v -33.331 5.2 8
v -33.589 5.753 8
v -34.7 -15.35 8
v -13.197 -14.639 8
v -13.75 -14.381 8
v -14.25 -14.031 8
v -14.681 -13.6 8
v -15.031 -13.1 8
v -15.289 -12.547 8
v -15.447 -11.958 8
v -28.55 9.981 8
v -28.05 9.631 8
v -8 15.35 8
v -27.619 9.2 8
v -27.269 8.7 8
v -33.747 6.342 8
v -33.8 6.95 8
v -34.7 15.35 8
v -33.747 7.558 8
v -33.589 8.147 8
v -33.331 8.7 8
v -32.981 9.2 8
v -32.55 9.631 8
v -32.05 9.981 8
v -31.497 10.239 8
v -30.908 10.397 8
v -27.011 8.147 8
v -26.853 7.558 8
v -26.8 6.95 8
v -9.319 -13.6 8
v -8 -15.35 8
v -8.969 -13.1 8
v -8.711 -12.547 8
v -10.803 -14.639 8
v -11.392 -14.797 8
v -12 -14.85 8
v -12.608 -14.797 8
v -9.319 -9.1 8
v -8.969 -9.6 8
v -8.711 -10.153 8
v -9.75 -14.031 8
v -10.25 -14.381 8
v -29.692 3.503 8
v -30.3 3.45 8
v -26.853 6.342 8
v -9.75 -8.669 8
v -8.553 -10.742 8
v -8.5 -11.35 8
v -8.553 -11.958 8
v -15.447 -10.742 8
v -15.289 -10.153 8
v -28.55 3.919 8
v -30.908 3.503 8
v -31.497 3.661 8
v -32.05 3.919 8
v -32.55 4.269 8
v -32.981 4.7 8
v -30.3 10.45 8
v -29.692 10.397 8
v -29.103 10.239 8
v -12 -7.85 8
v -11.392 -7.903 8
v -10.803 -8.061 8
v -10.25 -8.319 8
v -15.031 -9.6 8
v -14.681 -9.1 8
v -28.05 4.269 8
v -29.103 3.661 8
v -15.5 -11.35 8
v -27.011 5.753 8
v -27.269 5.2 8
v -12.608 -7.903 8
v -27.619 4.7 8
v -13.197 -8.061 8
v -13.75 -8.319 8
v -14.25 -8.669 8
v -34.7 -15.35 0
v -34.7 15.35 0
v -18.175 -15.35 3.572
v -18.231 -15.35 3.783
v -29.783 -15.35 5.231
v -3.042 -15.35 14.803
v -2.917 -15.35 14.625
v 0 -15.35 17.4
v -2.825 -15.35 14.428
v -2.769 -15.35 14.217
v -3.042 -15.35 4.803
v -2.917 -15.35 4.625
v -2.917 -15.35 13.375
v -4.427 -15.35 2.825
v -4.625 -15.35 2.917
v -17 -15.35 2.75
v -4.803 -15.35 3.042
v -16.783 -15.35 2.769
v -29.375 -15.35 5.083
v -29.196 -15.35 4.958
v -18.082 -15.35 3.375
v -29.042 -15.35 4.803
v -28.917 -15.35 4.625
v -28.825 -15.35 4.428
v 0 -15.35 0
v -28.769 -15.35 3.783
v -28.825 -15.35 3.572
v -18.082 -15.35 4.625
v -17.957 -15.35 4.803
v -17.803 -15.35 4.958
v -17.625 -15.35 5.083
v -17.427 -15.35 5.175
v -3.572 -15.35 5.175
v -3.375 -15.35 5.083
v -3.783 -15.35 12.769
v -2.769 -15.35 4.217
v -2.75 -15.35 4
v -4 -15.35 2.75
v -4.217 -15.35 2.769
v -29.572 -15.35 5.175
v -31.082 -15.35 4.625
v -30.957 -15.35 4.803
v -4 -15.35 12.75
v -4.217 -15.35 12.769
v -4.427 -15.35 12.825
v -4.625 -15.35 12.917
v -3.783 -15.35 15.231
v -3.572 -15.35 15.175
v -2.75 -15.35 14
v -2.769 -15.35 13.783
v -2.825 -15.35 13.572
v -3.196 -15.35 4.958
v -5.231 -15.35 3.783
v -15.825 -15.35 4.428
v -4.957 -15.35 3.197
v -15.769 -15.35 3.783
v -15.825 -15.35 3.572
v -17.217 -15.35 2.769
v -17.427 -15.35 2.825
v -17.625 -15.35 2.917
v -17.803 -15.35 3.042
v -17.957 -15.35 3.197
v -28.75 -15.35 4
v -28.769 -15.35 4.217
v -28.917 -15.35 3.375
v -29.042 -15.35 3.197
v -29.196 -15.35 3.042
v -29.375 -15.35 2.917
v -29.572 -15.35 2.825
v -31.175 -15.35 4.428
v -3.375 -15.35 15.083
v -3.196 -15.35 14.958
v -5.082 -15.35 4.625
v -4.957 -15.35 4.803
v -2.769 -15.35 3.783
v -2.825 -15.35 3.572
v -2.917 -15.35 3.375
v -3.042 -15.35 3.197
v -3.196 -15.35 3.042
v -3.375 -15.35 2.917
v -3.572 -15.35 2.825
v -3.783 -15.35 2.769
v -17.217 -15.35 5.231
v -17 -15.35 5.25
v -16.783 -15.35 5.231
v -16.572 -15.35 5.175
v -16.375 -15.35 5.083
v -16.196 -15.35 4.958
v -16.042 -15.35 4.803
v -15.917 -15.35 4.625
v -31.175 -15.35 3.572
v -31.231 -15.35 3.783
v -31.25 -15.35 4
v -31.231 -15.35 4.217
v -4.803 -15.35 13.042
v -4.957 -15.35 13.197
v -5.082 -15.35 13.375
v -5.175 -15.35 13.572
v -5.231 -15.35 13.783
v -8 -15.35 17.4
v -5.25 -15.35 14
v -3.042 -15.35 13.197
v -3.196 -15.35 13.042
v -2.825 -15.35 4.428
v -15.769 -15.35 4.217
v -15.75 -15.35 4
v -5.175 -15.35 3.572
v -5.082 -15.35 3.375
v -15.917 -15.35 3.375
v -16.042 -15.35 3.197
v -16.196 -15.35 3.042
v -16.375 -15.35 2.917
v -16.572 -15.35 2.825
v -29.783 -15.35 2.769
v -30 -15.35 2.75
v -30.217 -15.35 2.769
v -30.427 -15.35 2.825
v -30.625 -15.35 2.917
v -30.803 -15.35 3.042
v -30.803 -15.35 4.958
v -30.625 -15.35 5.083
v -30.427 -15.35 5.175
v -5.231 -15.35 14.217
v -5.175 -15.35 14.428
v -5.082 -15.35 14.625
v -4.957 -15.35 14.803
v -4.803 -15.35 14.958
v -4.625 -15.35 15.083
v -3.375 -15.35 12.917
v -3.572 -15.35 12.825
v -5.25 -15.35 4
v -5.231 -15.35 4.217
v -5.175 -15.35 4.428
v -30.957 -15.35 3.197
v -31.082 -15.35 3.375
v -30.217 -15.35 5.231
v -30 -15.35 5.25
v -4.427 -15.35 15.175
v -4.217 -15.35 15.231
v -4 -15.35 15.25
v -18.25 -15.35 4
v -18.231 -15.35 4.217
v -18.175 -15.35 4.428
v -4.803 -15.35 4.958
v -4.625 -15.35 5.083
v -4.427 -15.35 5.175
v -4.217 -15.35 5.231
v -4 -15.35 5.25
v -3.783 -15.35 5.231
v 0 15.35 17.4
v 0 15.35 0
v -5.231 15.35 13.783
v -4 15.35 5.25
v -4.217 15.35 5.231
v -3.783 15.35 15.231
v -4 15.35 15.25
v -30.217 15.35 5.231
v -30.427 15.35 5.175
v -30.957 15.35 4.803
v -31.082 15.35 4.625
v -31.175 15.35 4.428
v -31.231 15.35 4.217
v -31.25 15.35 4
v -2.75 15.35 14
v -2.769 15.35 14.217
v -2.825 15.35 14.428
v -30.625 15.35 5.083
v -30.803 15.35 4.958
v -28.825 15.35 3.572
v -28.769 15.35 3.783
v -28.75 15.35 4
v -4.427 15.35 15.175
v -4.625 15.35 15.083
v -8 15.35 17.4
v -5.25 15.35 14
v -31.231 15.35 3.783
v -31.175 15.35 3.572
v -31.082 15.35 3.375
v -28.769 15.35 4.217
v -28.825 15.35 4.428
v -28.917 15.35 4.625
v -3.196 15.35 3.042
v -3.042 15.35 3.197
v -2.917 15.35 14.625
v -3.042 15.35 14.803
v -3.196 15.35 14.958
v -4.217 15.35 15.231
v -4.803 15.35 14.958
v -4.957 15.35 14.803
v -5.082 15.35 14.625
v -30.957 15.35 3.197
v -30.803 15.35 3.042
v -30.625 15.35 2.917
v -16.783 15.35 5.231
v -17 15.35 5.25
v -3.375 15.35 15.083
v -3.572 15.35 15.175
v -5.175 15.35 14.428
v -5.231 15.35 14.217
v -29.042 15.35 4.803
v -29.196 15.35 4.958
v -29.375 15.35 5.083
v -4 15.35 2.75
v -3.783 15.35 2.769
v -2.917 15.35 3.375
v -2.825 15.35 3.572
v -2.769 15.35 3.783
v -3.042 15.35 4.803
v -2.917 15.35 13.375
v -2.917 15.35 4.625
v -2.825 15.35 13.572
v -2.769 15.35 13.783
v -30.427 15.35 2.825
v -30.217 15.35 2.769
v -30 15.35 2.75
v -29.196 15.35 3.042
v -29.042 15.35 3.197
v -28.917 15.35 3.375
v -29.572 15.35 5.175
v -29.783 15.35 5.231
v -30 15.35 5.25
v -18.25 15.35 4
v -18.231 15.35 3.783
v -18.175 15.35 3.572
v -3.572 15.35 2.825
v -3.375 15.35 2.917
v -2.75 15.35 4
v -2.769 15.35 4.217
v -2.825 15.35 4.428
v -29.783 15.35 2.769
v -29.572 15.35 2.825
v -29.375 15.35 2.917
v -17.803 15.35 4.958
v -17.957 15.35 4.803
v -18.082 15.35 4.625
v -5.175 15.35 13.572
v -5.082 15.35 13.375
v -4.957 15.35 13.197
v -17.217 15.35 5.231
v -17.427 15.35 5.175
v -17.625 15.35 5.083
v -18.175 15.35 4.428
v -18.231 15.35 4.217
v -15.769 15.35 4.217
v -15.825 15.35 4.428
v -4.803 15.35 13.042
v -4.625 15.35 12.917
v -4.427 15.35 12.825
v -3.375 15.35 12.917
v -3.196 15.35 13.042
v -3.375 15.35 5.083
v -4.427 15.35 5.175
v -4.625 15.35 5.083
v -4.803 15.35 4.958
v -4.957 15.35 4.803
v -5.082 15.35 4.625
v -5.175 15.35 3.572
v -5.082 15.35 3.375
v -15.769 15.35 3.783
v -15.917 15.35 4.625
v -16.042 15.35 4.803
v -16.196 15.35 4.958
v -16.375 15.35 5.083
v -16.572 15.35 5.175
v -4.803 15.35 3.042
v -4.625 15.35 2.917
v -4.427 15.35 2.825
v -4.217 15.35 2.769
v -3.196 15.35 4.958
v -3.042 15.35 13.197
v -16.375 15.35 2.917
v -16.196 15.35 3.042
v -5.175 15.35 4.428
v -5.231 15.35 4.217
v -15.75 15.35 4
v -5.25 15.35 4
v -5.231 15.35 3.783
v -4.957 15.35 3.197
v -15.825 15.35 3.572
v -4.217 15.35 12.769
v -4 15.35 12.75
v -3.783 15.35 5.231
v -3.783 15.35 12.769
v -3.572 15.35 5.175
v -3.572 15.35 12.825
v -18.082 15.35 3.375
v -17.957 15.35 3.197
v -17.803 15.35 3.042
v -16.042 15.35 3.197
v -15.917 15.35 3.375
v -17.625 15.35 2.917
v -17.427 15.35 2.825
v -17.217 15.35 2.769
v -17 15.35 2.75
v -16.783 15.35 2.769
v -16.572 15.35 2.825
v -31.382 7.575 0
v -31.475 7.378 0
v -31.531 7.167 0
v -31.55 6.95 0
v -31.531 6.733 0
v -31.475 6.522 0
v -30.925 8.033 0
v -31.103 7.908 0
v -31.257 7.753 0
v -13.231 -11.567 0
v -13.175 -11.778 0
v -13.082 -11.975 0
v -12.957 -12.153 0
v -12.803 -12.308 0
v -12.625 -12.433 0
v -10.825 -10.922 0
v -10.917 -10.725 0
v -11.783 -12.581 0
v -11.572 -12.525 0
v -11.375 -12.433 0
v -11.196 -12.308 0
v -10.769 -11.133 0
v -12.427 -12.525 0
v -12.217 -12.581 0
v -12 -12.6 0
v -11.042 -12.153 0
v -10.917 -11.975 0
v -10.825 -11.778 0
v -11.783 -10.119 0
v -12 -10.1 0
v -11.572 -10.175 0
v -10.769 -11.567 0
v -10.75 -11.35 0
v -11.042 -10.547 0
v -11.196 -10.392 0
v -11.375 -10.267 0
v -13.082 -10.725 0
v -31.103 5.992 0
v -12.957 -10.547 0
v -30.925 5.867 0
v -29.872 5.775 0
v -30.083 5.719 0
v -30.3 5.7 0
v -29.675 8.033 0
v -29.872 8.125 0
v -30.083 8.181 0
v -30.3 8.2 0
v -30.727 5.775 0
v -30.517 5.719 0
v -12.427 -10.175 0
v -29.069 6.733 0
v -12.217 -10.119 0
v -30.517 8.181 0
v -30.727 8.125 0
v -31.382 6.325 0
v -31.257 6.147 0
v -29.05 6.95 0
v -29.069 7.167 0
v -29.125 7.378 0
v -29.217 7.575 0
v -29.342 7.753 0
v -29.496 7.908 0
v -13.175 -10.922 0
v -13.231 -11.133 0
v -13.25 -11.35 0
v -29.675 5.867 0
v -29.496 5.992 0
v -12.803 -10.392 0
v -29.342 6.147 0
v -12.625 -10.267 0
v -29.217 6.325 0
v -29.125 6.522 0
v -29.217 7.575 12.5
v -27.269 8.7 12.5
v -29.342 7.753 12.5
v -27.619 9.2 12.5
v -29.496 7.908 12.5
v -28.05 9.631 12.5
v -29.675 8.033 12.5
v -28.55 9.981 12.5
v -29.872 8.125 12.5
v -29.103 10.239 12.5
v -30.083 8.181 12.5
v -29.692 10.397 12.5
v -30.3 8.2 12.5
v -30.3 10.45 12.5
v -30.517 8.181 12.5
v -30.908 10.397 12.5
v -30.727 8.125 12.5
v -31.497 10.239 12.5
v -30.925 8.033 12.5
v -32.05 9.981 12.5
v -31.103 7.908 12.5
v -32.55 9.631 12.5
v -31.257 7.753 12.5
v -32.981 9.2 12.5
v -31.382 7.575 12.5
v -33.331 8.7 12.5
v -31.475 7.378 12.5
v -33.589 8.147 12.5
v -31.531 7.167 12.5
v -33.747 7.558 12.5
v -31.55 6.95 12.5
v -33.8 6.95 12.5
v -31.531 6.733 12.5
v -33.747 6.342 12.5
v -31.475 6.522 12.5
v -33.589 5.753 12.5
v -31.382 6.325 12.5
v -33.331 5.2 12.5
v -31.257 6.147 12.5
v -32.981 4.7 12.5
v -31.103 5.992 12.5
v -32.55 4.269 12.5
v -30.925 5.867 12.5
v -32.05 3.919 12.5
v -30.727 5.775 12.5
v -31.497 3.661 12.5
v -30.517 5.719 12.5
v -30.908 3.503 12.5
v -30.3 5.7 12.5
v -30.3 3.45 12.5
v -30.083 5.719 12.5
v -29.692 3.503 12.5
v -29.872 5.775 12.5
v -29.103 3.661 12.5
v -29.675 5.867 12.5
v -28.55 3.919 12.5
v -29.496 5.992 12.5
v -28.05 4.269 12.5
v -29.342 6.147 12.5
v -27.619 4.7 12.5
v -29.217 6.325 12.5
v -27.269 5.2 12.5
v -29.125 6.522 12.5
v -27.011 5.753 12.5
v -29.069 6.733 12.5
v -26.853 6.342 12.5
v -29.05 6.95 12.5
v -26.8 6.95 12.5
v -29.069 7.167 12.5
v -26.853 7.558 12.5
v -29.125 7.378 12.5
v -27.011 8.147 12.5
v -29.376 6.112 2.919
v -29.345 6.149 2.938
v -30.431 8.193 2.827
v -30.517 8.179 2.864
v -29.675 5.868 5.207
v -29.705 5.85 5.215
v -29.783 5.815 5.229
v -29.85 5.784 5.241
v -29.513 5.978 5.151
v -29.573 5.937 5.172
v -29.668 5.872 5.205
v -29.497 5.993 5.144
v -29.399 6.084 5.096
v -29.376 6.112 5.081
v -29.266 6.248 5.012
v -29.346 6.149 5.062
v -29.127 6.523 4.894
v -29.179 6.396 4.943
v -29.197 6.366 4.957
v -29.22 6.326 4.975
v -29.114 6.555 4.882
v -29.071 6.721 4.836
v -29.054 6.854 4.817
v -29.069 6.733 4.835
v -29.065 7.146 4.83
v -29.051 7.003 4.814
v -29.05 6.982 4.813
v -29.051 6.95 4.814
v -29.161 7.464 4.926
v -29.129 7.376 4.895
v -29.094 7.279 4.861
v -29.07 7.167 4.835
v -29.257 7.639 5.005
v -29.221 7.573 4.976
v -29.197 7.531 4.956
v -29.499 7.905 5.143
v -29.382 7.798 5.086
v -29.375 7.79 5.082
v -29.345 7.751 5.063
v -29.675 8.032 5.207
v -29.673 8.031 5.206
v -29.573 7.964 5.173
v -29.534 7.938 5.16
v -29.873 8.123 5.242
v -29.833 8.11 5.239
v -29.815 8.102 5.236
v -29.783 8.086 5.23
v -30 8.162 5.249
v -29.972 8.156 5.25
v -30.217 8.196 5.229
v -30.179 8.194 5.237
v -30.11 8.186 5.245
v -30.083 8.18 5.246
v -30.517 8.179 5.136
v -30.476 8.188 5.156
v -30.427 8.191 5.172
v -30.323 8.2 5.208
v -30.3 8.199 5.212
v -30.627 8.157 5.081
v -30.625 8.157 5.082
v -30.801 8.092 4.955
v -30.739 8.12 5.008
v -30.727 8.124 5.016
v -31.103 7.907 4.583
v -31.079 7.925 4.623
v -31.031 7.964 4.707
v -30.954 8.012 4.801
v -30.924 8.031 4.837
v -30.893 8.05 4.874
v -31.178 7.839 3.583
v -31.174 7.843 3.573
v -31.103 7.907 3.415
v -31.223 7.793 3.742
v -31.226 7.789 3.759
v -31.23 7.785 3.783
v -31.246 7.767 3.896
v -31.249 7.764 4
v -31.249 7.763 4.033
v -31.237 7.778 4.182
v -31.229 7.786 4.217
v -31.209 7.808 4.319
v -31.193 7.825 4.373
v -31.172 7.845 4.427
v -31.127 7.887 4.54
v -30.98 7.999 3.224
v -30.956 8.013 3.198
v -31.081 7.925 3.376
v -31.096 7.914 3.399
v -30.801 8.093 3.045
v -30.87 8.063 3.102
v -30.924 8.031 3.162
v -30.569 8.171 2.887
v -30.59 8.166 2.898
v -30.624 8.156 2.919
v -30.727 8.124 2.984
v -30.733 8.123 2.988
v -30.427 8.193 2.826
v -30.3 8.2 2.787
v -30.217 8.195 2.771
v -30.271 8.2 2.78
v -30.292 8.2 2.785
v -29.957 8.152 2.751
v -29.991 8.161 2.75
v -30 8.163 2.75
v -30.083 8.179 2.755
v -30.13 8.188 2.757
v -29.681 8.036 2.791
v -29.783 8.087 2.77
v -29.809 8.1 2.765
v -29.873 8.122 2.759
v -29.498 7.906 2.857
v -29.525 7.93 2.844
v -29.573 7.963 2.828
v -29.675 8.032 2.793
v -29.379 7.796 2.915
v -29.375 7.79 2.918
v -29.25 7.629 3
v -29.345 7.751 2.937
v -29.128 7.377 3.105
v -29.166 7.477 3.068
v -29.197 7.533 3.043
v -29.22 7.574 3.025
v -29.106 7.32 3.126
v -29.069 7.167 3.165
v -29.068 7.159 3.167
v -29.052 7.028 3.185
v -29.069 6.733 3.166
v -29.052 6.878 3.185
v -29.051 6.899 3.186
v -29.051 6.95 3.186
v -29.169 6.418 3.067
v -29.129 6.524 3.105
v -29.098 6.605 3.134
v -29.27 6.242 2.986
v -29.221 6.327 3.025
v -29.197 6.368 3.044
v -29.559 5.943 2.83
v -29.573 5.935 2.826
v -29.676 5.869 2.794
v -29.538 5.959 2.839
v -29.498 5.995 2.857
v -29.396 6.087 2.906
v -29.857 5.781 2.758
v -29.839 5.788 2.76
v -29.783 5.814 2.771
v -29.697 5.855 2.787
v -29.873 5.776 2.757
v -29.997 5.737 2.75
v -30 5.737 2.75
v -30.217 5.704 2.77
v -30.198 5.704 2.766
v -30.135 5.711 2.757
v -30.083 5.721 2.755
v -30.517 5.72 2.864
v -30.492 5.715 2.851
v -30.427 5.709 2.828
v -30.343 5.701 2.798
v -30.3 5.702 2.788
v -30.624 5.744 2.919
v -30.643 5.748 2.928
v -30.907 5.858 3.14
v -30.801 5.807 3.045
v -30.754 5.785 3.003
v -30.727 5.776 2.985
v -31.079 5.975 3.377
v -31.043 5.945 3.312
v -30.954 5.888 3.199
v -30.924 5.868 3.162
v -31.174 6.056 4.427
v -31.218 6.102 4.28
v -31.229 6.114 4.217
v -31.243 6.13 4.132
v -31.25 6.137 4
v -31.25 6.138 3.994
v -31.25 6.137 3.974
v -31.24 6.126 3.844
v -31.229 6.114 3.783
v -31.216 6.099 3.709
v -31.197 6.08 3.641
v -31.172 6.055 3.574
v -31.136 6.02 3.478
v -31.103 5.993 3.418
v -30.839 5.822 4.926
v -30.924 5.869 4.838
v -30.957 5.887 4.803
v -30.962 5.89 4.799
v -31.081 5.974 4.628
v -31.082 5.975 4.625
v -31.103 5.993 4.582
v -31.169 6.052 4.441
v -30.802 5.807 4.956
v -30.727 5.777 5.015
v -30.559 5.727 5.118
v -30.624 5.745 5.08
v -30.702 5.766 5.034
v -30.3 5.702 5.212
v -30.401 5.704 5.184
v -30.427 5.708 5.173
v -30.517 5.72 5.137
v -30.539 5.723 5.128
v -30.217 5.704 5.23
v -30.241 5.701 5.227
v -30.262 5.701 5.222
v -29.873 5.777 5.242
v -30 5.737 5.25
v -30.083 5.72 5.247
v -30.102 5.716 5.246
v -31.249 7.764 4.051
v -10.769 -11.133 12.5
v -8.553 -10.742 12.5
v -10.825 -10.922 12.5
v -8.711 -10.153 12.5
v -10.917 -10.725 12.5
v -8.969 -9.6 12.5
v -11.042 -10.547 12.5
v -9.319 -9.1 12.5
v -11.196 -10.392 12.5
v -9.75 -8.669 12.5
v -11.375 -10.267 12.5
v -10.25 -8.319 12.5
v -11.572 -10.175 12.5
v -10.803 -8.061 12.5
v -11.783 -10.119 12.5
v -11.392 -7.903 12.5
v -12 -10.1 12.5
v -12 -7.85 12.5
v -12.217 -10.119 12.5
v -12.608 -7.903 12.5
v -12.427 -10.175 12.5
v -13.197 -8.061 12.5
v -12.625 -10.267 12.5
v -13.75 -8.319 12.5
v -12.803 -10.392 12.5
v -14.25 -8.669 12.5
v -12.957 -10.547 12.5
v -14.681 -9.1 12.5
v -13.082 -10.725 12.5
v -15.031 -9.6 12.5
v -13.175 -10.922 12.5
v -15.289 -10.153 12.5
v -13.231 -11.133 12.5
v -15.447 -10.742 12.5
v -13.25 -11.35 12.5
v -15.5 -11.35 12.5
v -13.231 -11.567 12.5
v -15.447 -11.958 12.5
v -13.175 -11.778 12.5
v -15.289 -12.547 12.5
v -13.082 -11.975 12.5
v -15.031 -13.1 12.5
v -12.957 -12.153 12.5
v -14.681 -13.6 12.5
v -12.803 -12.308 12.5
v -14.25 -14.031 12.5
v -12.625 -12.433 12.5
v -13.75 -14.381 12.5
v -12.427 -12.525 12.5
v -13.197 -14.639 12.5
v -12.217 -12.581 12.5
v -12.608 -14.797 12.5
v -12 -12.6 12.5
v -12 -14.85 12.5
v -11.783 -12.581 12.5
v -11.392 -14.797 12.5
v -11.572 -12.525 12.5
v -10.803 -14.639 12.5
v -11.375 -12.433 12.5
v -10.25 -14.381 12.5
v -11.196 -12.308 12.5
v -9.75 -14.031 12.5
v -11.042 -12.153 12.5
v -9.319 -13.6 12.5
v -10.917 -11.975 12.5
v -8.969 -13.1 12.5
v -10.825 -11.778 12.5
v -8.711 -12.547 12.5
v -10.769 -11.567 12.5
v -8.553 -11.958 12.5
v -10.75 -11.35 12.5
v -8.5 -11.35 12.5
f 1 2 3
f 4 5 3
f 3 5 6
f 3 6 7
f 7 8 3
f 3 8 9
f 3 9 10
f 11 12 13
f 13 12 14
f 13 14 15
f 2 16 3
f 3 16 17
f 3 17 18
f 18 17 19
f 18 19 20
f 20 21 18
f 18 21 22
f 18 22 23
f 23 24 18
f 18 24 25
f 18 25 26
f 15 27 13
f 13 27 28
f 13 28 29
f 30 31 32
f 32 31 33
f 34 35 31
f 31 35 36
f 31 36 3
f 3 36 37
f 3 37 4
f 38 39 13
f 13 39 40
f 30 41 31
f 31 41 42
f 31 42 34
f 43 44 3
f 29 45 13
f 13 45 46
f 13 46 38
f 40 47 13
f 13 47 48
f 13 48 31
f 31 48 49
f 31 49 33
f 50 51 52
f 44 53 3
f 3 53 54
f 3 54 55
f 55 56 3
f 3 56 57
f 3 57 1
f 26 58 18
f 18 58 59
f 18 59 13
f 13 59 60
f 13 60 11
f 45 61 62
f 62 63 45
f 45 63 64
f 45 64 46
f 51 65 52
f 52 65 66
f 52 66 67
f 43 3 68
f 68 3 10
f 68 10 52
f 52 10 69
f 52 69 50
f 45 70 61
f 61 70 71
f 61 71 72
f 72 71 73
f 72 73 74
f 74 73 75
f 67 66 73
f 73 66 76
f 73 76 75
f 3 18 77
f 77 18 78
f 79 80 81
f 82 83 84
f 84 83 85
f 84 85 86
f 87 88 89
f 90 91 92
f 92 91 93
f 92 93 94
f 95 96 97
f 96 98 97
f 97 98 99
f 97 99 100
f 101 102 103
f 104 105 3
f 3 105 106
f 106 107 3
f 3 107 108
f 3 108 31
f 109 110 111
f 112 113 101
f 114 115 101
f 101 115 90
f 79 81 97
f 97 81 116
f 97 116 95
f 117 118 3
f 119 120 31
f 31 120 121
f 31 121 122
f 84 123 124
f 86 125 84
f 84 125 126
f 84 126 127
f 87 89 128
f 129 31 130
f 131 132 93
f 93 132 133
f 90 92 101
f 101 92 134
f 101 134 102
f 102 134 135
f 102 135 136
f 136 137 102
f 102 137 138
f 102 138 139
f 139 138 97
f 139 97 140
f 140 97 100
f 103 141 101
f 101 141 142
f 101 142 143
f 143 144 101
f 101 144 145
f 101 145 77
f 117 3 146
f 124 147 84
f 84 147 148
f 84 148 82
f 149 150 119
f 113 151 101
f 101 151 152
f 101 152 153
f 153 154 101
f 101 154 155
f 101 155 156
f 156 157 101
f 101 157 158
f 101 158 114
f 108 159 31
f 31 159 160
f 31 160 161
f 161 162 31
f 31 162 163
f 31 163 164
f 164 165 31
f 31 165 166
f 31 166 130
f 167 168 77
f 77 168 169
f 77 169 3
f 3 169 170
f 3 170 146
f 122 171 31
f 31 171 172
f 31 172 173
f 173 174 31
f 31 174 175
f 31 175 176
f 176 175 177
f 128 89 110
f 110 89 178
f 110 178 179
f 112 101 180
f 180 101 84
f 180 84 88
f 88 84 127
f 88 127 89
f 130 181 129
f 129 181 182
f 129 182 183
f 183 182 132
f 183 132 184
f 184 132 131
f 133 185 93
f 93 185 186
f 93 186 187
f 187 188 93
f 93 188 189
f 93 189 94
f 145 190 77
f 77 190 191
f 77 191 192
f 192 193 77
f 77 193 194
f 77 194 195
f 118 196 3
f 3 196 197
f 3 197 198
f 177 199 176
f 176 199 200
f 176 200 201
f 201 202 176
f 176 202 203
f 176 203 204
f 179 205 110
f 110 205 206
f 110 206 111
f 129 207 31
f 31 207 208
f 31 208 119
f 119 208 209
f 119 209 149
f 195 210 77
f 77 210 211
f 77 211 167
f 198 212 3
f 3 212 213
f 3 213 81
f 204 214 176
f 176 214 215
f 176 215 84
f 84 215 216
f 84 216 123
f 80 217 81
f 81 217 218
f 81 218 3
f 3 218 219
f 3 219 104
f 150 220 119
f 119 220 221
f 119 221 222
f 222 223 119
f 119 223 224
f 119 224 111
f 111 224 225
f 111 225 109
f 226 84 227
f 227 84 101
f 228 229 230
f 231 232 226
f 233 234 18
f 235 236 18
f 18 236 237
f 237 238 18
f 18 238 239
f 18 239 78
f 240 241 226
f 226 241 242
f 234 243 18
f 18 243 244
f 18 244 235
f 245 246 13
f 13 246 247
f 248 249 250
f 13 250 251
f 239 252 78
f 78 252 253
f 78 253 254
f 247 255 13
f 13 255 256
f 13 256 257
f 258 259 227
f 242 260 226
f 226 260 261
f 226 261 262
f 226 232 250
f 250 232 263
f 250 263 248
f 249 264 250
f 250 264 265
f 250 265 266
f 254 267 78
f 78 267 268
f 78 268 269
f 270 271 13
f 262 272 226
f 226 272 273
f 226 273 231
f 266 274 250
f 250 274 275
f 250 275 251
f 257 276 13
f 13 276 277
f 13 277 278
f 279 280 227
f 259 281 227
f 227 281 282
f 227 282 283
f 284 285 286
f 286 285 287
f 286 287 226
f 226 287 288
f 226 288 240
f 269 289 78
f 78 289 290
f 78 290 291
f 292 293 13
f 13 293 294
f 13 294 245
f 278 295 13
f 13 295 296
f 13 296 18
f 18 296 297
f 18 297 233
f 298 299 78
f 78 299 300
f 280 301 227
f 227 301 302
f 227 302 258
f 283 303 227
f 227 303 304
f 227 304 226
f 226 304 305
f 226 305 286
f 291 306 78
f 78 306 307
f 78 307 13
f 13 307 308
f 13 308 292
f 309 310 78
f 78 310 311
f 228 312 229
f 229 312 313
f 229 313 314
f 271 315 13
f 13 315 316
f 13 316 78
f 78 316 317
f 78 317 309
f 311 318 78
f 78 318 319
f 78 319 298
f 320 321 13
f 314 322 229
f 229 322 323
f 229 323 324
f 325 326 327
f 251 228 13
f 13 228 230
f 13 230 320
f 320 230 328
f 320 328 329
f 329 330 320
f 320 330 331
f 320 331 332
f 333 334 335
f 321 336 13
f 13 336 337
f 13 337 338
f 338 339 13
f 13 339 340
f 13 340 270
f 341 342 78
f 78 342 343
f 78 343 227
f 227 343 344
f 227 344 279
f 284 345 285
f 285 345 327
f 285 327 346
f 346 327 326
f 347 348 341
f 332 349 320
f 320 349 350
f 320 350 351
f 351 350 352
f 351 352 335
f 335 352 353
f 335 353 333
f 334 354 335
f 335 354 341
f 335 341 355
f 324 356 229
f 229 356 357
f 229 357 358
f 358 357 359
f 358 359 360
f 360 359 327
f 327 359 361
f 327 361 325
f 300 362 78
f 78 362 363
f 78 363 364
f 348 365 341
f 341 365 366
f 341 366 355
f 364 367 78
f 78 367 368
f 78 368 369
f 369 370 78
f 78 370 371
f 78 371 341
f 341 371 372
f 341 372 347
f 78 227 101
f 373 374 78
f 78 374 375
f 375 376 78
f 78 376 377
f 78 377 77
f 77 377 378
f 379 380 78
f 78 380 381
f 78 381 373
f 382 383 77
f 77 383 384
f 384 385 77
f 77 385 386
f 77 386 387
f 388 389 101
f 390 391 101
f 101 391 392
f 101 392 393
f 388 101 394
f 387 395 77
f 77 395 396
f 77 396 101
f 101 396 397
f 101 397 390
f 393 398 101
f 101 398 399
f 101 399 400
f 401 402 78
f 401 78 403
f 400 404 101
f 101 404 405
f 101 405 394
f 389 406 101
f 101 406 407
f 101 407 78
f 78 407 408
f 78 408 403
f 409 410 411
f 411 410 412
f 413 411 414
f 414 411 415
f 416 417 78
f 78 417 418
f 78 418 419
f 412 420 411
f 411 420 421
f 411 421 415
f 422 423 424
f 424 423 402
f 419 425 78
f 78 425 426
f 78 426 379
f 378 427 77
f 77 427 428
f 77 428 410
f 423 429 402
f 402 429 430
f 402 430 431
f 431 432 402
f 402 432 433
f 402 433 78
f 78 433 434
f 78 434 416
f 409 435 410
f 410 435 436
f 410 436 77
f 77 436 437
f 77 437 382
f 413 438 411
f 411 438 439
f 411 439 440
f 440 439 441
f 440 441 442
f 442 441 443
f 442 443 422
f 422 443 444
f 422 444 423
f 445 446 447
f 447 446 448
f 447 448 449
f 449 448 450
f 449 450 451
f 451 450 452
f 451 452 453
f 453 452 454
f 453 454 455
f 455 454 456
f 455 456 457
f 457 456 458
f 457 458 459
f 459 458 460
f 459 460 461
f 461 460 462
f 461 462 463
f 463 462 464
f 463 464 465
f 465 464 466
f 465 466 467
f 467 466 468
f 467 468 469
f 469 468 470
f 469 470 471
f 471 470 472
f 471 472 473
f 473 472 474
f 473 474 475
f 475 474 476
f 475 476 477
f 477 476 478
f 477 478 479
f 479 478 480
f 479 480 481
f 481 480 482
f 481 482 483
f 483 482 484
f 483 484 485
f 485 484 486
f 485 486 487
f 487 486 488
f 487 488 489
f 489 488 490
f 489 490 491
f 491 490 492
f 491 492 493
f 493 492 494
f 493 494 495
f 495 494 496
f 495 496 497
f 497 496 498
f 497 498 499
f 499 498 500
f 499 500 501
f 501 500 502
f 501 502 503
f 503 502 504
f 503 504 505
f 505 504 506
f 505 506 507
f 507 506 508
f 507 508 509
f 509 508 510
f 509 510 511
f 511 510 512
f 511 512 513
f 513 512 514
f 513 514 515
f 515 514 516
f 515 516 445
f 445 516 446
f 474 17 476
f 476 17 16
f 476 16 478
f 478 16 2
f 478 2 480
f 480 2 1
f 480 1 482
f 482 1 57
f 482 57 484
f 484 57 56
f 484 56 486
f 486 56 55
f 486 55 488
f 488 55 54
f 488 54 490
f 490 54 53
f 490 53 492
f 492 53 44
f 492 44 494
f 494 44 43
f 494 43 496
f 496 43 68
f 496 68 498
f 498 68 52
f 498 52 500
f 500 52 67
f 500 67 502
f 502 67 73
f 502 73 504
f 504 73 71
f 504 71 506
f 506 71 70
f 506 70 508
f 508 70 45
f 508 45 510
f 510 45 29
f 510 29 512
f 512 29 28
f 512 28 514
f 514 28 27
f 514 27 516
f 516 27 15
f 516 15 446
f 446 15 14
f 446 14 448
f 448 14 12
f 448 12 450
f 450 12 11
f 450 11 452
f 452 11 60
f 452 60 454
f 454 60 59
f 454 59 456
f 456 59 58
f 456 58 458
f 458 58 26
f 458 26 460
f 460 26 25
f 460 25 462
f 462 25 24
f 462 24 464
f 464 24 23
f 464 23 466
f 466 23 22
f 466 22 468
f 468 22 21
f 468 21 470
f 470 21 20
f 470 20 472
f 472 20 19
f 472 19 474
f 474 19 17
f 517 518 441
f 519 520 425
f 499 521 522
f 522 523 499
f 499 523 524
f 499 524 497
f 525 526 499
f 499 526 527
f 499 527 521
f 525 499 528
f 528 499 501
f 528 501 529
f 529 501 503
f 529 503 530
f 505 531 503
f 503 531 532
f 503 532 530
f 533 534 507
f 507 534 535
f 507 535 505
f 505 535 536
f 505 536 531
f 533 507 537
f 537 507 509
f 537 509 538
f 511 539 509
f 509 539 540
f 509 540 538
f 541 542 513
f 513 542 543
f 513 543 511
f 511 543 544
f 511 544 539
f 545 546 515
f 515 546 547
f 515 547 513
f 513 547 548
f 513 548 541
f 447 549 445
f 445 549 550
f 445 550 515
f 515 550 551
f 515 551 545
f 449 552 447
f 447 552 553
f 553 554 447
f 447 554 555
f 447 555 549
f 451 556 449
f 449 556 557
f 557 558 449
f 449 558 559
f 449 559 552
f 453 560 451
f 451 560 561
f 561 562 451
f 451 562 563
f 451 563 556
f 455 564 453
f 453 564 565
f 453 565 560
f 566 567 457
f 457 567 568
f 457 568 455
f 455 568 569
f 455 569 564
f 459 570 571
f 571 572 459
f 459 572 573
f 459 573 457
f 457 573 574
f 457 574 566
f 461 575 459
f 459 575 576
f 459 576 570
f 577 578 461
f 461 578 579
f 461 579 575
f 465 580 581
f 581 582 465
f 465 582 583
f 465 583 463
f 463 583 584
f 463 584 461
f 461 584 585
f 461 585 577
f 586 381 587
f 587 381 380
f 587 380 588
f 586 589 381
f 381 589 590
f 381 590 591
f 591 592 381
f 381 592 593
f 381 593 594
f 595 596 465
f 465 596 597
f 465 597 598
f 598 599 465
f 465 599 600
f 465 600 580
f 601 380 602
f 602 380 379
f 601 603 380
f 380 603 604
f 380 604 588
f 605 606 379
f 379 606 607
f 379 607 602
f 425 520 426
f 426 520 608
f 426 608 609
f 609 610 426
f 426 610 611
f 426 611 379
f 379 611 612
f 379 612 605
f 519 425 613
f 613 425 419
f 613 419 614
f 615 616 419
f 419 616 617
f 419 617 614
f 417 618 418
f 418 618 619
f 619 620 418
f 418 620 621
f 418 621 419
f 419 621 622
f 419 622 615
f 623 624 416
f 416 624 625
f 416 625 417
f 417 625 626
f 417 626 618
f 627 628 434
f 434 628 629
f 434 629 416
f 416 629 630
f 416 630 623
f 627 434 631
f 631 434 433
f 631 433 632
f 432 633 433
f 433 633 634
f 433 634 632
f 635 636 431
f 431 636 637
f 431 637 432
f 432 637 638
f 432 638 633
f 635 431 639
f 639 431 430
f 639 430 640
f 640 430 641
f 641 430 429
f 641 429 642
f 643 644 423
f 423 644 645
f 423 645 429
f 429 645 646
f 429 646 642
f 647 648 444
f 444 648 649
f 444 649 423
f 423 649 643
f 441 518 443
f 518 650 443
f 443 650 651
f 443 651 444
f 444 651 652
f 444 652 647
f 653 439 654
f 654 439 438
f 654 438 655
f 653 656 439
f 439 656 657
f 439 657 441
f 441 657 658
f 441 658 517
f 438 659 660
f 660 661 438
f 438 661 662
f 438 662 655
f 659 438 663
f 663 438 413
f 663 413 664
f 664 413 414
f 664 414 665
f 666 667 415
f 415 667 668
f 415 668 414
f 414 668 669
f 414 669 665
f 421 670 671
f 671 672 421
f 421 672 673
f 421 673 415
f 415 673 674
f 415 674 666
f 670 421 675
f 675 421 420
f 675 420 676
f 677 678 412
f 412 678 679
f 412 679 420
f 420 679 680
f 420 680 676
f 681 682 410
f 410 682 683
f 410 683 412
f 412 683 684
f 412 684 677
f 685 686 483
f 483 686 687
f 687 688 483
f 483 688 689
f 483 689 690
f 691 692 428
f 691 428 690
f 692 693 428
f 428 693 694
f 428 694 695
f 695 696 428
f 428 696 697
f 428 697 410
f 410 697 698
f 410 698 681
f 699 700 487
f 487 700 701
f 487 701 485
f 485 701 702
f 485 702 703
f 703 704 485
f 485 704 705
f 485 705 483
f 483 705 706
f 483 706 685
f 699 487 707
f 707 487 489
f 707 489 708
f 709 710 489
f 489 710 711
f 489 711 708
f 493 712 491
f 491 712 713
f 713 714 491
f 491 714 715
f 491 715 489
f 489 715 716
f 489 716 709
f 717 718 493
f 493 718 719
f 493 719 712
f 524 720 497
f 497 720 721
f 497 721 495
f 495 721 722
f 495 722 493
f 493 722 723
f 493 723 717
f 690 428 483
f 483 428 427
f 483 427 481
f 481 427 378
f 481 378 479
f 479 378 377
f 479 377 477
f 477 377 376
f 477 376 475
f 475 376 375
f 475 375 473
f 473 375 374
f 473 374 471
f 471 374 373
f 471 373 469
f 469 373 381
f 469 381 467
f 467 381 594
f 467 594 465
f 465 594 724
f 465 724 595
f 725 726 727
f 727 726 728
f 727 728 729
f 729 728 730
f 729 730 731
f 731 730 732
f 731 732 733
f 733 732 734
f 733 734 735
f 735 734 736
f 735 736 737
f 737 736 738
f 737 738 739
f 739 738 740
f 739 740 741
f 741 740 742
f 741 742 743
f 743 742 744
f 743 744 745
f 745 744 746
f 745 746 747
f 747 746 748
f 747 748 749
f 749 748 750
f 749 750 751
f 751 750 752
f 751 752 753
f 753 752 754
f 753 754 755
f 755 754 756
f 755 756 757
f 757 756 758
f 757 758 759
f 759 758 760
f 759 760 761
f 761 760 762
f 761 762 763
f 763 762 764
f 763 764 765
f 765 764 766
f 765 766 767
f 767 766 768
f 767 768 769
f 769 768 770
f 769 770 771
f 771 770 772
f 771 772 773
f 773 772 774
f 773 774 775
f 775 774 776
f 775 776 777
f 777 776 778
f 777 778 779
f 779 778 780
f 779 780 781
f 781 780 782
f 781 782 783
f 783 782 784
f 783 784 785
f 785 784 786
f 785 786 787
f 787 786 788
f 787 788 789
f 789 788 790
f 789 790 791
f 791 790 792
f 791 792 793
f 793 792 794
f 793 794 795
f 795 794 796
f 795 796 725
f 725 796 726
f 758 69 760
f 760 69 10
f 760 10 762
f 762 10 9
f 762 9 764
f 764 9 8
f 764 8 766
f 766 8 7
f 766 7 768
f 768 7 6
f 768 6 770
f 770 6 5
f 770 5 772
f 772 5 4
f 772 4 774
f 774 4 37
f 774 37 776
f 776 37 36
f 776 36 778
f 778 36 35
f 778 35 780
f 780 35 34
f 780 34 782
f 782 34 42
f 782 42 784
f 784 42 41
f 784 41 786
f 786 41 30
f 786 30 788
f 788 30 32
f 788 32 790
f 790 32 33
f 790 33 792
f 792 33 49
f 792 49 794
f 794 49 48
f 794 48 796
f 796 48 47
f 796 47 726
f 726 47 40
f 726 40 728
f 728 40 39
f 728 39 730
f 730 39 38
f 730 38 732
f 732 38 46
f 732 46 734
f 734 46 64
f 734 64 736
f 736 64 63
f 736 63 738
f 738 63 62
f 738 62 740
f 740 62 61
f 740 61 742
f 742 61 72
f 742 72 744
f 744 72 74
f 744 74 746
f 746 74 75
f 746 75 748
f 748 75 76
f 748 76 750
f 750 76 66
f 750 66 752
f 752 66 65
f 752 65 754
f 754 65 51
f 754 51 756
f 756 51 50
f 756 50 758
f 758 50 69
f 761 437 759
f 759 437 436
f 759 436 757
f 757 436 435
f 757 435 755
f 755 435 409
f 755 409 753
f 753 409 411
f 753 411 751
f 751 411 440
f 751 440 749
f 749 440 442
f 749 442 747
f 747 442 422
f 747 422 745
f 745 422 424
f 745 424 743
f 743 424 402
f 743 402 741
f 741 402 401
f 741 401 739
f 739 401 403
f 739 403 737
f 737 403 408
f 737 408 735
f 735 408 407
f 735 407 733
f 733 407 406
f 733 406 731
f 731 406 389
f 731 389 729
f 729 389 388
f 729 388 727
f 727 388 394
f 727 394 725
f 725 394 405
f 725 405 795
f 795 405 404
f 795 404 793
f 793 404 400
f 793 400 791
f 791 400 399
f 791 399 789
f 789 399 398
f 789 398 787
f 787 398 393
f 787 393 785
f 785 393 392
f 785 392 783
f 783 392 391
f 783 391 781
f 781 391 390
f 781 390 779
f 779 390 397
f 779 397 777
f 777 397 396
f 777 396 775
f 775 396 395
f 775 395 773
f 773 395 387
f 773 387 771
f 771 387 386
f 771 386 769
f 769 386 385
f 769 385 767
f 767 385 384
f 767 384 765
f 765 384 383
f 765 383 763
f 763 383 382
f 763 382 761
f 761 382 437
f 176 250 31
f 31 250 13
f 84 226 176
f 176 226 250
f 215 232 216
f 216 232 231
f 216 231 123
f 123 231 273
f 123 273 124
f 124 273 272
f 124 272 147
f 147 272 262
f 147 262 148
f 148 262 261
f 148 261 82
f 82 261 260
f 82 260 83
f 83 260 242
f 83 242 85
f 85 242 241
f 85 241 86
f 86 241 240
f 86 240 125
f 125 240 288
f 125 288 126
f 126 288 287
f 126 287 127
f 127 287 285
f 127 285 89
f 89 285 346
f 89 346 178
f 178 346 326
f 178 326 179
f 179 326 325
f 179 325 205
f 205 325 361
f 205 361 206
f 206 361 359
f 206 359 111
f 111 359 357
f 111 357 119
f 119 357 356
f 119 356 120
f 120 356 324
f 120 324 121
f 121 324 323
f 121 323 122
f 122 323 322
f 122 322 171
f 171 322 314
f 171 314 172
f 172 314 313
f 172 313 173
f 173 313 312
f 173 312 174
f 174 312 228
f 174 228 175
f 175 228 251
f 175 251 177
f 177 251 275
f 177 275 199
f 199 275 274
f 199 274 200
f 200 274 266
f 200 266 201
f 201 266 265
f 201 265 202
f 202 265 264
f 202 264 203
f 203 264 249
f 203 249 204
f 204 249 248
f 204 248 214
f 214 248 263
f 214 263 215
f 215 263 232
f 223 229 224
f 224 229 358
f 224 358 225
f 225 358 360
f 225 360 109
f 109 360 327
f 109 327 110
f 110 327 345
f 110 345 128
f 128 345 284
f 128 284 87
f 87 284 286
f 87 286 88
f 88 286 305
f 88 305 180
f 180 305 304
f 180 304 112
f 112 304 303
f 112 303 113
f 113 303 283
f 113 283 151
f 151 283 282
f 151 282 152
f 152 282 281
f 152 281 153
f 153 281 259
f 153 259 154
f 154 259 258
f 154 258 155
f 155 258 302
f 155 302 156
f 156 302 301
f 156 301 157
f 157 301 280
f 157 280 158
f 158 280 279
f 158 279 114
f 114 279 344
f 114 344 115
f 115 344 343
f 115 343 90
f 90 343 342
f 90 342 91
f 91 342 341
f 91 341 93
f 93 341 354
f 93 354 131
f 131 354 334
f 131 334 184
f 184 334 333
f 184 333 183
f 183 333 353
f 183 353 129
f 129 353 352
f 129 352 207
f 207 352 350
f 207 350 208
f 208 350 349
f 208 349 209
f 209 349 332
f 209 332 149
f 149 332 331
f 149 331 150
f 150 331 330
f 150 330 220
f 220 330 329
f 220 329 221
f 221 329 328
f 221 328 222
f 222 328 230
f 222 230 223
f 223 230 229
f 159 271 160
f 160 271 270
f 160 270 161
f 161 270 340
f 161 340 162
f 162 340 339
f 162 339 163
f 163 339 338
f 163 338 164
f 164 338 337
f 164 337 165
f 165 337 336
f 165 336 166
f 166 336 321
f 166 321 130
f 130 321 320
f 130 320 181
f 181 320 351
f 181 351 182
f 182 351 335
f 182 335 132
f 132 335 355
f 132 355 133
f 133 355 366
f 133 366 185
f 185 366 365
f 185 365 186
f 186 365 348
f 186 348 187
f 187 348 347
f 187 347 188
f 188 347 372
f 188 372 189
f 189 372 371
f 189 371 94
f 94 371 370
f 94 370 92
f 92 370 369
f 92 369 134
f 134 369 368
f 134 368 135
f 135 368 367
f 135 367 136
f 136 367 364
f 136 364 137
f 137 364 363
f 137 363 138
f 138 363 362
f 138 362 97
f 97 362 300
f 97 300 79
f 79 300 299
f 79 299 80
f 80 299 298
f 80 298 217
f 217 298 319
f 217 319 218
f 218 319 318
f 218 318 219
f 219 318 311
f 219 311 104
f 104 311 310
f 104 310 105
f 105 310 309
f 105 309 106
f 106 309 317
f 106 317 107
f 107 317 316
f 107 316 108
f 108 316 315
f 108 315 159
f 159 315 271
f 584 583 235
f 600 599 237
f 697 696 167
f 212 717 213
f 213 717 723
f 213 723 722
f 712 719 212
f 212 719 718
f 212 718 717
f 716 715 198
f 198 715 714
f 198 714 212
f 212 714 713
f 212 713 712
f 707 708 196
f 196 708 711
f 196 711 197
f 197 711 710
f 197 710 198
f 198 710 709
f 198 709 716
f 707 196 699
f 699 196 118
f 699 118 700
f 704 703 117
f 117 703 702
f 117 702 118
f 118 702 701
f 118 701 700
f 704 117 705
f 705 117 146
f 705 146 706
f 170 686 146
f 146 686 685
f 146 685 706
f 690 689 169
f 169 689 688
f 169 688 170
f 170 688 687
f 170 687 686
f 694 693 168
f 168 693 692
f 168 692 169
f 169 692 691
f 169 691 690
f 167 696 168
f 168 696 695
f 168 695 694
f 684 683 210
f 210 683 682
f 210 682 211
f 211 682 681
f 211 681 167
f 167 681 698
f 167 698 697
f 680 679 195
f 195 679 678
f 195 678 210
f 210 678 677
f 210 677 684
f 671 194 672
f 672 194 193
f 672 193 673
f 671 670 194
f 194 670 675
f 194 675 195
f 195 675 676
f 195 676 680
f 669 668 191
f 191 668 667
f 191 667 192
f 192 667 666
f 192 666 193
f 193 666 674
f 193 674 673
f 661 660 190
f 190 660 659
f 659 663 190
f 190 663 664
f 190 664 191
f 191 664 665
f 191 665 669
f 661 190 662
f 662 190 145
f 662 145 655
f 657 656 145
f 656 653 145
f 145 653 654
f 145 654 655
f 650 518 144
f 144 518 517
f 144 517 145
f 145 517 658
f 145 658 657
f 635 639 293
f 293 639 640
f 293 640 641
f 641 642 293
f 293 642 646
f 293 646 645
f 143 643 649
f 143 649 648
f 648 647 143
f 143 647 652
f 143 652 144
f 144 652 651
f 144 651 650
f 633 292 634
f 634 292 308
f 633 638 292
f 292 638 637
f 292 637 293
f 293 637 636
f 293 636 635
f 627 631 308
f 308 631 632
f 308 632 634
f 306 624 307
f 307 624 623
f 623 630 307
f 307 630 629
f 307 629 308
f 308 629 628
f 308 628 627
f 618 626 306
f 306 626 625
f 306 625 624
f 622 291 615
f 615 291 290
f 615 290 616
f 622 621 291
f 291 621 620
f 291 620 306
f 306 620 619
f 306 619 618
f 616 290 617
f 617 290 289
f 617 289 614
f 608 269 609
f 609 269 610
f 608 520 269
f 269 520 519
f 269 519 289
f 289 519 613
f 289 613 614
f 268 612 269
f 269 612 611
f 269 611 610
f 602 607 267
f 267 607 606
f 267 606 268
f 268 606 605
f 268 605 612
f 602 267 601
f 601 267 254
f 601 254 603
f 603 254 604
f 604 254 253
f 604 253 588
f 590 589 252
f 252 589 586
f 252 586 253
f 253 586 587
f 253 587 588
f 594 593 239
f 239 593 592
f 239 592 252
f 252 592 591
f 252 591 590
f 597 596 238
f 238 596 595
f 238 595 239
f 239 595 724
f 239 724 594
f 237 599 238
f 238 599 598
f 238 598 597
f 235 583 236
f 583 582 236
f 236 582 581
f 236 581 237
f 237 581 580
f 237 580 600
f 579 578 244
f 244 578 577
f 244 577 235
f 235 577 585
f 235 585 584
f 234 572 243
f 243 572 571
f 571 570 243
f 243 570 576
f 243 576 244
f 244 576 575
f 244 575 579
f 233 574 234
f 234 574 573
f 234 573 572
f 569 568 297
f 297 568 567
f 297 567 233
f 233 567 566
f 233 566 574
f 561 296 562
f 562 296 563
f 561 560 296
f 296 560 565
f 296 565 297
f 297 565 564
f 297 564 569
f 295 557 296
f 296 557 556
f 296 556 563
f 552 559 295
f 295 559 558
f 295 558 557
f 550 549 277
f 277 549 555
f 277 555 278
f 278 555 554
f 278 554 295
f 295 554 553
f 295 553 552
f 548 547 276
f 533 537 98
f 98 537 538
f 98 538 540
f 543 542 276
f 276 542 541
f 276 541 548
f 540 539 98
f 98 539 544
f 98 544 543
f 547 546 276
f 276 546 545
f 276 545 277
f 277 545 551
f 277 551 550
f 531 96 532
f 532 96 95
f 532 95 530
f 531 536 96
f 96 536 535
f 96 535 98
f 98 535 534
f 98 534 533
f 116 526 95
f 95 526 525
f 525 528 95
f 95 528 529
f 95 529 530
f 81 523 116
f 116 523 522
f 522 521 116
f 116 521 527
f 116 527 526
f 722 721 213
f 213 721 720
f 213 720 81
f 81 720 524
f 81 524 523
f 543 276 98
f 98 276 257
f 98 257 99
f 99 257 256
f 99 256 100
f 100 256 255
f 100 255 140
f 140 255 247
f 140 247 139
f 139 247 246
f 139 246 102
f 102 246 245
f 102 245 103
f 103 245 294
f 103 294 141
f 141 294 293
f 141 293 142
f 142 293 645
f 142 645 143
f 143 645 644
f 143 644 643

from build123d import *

# Parameters (mm, degrees)
ESQUISSE1_W             = 34.7
ESQUISSE1_H             = 30.7
BOSS_EXTRU_1_DEPTH      = 8
ESQUISSE2_R             = 3.5
ESQUISSE2_R_2           = 1.25
BOSS_EXTRU_2_DEPTH      = 4.5
ESQUISSE3_W             = 8
ESQUISSE3_H             = 30.7
BOSS_EXTRU_3_DEPTH      = 9.4
ESQUISSE4_R             = 1.25
ENL_V_MAT_EXTRU_1_DEPTH = 31.7
ESQUISSE6_R             = 1.25
ENL_V_MAT_EXTRU_2_DEPTH = 9


with BuildPart() as part:
    # Esquisse1 → Boss.-Extru.1 (new body)
    with BuildSketch(Plane.XY):
        with Locations((-17.35, 0)):
            Rectangle(ESQUISSE1_W, ESQUISSE1_H)
    extrude(amount=BOSS_EXTRU_1_DEPTH)

    # Esquisse2 → Boss.-Extru.2 (add, symmetric)
    with BuildSketch(Plane.XY.offset(8)):
        with Locations((-30.3, 6.95)):
            Circle(ESQUISSE2_R)
        with Locations((-30.3, 6.95)):
            Circle(ESQUISSE2_R_2, mode=Mode.SUBTRACT)
        with Locations((-12, -11.35)):
            Circle(ESQUISSE2_R)
        with Locations((-12, -11.35)):
            Circle(ESQUISSE2_R_2, mode=Mode.SUBTRACT)
    extrude(amount=BOSS_EXTRU_2_DEPTH, both=True)

    # Esquisse3 → Boss.-Extru.3 (add)
    with BuildSketch(Plane.XY.offset(8)):
        with Locations((-4, 0)):
            Rectangle(ESQUISSE3_W, ESQUISSE3_H)
    extrude(amount=BOSS_EXTRU_3_DEPTH)

    # Esquisse4 → Enlèv. mat.-Extru.1 (cut, through all)
    with BuildSketch(Plane(origin=(0, 15.35, 0), x_dir=(1, 0, 0), z_dir=(0, 1, 0))):
        with Locations((-4, -14)):
            Circle(ESQUISSE4_R)
        with Locations((-4, -4)):
            Circle(ESQUISSE4_R)
        with Locations((-17, -4)):
            Circle(ESQUISSE4_R)
        with Locations((-30, -4)):
            Circle(ESQUISSE4_R)
    extrude(amount=-ENL_V_MAT_EXTRU_1_DEPTH, mode=Mode.SUBTRACT)

    # Esquisse6 → Enlèv. mat.-Extru.2 (cut, through all)
    with BuildSketch(Plane.XY.offset(8)):
        with Locations((-30.3, 6.95)):
            Circle(ESQUISSE6_R)
        with Locations((-12, -11.35)):
            Circle(ESQUISSE6_R)
    extrude(amount=-ENL_V_MAT_EXTRU_2_DEPTH, mode=Mode.SUBTRACT)


solid = part.part
